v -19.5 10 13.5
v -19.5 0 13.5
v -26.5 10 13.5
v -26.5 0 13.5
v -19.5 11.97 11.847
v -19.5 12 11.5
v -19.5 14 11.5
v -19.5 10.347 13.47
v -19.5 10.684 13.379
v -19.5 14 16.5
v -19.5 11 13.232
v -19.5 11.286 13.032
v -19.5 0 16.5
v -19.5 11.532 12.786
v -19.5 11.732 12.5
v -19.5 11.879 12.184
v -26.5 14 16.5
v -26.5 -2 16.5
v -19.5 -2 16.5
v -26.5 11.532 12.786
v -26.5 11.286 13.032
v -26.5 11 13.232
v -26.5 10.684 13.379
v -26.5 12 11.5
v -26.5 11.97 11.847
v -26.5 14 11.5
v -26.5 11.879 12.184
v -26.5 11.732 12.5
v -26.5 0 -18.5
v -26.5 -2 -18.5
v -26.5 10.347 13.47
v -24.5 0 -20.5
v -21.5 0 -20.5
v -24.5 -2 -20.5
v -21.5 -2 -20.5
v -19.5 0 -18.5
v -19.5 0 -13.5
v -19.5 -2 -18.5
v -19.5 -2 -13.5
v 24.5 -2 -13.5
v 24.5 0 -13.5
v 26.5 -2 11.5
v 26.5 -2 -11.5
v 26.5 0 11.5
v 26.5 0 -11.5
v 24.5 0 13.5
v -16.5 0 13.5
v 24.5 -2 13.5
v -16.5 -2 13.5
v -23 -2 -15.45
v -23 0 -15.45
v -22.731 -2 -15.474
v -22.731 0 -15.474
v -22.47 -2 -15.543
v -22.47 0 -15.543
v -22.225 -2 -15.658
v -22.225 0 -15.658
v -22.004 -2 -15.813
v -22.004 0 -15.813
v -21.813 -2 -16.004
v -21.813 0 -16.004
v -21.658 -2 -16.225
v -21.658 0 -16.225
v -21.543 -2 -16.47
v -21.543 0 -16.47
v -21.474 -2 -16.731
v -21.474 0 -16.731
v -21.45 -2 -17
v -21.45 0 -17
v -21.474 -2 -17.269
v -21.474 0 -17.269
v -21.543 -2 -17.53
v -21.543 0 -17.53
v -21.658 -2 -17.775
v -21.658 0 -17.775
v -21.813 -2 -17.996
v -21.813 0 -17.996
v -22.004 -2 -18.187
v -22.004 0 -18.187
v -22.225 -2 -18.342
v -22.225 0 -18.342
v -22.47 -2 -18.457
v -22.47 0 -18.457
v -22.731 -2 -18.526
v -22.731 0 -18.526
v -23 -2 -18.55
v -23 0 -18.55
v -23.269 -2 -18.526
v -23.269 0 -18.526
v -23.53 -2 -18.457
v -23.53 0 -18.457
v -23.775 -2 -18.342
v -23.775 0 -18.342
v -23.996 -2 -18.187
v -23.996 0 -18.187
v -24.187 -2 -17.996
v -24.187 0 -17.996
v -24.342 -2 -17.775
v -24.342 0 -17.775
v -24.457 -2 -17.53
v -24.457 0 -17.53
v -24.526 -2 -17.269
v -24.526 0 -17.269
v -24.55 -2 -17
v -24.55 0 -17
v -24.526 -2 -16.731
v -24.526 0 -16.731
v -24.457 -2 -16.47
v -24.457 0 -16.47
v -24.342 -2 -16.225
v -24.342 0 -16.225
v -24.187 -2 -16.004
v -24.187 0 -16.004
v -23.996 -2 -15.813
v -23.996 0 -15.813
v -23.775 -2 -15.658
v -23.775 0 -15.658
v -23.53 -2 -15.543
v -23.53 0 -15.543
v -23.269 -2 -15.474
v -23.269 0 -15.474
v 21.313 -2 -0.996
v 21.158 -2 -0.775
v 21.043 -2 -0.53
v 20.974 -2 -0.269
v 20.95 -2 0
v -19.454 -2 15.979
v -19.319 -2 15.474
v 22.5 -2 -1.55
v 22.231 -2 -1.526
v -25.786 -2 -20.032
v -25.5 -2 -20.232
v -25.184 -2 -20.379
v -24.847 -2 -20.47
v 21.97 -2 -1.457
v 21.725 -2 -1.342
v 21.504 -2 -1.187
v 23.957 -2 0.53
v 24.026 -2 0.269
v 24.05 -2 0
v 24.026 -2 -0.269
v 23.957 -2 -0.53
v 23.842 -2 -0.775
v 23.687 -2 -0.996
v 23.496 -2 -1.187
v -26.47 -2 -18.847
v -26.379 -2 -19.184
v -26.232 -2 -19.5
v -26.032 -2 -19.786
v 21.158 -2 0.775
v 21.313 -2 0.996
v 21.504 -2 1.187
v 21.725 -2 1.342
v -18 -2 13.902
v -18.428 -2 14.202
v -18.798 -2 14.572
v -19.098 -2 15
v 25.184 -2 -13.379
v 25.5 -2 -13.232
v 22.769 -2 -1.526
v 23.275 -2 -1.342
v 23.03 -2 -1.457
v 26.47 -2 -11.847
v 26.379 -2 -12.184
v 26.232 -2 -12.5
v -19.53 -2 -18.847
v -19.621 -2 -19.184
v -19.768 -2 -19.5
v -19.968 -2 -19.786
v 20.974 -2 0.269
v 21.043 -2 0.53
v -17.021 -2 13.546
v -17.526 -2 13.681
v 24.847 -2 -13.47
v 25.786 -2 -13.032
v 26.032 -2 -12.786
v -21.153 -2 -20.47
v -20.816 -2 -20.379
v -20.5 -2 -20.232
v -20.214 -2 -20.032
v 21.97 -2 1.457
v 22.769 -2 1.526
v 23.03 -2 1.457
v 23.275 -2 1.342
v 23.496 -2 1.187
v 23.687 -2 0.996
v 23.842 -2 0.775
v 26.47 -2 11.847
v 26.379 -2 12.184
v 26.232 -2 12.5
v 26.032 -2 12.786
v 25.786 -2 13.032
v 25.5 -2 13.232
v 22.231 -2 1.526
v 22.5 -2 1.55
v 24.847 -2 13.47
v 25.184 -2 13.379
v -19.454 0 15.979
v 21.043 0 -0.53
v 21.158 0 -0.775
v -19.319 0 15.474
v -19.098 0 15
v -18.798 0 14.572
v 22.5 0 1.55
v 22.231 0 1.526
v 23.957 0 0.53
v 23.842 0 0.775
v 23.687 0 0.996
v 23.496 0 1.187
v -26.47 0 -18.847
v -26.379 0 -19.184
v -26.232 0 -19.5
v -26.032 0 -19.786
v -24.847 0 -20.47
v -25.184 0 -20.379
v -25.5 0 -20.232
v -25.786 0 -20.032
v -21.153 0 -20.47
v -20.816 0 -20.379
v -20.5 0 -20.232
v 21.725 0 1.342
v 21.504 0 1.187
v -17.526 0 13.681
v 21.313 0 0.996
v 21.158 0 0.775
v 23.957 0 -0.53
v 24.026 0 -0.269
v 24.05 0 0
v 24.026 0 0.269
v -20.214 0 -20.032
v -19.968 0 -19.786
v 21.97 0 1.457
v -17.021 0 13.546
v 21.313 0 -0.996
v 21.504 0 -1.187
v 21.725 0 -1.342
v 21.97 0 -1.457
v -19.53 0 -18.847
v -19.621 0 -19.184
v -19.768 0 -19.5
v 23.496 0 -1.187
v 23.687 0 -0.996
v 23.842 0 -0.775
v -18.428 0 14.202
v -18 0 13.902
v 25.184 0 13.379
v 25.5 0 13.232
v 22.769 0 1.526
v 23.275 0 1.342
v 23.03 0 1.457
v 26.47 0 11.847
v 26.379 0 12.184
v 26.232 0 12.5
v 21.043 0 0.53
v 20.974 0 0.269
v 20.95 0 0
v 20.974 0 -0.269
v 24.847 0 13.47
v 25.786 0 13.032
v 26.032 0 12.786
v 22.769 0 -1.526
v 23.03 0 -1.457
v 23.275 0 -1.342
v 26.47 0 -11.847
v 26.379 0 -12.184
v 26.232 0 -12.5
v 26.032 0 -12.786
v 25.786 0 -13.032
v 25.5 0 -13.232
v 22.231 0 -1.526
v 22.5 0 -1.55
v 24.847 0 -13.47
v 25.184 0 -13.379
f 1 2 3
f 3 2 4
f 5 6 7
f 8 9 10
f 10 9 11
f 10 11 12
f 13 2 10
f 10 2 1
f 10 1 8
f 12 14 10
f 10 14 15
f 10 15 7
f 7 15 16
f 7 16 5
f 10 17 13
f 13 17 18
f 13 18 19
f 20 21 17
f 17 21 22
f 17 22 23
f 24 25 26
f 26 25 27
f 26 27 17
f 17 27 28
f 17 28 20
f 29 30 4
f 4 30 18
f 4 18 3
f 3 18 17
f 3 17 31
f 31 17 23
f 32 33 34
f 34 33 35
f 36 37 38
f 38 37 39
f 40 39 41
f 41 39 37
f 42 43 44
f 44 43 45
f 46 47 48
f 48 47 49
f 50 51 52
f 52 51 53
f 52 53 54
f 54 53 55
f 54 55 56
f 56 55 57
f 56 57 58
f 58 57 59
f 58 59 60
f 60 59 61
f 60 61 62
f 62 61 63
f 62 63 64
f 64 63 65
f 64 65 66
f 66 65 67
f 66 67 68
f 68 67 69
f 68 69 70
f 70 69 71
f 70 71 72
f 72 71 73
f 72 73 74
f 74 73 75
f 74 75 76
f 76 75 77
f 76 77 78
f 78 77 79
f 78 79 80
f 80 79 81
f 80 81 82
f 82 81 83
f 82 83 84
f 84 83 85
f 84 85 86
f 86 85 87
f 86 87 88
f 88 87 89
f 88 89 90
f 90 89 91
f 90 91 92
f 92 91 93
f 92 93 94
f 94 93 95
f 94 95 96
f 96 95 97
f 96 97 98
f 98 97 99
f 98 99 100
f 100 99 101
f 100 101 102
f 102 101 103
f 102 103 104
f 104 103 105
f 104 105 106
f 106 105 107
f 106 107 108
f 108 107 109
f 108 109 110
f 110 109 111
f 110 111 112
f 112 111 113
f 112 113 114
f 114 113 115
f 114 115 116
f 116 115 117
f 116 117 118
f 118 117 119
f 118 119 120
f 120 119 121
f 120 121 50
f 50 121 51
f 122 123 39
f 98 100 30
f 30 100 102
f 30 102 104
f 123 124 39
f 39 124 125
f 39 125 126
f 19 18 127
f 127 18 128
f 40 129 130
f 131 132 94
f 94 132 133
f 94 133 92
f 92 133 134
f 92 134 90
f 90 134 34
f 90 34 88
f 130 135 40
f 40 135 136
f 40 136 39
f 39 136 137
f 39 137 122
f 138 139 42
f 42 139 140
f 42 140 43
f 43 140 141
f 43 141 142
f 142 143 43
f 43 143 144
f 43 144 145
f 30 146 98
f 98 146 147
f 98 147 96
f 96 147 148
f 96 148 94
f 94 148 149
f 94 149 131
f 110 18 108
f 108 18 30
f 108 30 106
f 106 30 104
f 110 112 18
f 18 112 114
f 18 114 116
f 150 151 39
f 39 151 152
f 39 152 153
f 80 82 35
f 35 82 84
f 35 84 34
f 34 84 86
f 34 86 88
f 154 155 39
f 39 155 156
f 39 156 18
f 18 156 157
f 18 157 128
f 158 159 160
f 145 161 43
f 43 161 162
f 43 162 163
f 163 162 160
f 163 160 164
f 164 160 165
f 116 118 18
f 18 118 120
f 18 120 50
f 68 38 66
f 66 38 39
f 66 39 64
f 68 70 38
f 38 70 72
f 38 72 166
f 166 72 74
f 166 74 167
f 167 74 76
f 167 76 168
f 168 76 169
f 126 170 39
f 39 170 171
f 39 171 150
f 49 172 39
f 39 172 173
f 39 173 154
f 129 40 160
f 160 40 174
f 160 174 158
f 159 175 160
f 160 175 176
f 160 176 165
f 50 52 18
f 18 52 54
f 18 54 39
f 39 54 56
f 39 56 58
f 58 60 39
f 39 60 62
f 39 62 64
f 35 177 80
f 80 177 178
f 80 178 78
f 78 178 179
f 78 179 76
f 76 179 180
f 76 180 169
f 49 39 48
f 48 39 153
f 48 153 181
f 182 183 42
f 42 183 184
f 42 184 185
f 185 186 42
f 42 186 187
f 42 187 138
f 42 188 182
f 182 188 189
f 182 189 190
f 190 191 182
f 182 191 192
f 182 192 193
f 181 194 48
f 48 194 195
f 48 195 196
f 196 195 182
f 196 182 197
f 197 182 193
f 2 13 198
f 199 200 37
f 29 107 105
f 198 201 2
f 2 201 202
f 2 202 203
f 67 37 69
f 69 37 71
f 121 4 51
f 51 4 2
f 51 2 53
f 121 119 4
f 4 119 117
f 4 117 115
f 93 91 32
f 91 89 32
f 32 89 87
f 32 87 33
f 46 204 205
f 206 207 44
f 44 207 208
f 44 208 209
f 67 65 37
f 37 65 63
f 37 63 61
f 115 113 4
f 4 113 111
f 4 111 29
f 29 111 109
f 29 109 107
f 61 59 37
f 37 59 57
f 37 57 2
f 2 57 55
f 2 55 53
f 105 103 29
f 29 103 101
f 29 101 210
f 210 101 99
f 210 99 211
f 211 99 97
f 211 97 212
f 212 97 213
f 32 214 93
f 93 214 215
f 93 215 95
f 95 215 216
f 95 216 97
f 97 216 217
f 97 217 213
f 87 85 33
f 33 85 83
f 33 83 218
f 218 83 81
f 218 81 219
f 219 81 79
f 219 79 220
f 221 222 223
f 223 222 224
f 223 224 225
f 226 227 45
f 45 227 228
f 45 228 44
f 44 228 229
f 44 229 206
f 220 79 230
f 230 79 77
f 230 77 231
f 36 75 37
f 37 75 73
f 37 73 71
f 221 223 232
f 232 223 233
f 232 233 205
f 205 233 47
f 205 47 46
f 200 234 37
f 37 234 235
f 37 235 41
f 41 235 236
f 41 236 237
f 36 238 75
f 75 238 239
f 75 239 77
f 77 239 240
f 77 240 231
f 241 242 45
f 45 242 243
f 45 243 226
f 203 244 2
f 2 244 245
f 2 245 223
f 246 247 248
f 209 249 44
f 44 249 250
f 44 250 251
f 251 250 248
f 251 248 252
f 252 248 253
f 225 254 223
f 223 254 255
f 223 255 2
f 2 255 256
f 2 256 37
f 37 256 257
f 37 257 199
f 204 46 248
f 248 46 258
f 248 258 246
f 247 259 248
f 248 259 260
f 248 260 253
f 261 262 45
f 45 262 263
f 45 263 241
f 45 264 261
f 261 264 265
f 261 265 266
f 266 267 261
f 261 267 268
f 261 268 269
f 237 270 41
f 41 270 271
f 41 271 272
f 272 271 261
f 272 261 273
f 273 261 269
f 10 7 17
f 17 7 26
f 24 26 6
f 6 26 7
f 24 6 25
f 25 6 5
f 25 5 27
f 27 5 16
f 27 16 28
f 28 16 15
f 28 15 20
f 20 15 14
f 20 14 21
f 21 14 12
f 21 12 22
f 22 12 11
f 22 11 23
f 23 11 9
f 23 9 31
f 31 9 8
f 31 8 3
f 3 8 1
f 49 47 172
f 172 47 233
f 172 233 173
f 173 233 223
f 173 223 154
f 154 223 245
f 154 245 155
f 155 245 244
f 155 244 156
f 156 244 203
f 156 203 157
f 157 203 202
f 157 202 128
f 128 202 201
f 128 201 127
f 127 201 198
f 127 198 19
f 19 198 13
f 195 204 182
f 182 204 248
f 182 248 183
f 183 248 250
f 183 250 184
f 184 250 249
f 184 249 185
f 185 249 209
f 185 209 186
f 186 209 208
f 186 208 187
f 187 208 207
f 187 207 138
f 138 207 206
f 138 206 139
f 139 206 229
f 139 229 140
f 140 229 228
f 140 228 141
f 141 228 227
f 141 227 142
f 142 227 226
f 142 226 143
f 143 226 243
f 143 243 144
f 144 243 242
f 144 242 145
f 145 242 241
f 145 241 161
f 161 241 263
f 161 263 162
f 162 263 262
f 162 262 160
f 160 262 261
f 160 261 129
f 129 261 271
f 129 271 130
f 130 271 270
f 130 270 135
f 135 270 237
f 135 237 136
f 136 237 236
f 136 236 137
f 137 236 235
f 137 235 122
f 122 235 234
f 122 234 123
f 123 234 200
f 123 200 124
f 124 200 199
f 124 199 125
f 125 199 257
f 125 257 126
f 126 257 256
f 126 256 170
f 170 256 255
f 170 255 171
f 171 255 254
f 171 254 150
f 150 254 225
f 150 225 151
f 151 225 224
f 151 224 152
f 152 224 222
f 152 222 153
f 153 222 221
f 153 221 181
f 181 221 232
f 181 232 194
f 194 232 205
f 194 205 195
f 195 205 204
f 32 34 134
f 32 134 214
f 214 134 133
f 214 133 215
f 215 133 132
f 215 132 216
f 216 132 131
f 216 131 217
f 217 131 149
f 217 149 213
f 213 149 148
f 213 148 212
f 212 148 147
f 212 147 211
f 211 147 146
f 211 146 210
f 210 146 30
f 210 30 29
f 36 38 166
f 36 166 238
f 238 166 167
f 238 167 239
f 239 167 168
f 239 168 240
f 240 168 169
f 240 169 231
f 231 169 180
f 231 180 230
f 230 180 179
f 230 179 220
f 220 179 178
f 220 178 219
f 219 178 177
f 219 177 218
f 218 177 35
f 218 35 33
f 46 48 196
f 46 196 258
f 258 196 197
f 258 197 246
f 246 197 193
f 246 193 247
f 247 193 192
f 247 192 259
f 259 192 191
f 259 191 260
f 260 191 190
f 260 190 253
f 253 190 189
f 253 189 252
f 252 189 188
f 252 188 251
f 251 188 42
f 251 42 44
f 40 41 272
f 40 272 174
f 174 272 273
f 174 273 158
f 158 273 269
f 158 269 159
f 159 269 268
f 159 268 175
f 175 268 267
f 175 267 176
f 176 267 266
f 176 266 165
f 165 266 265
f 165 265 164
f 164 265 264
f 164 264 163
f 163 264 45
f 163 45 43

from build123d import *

# Parameters (mm, degrees)
ESBO_O1_W                = 7
ESBO_O1_H                = 3
ESBO_O1_W_2              = 53
ESBO_O1_H_2              = 27
ESBO_O1_H_3              = 7
ESBO_O1_R                = 1.55
RESSALTO_EXTRUS_O1_DEPTH = 2
ESBO_O2_W                = 7
ESBO_O2_H                = 3
RESSALTO_EXTRUS_O2_DEPTH = 14
ESBO_O3_W                = 7
ESBO_O3_H                = 2
RESSALTO_EXTRUS_O3_DEPTH = 2
FILETE1_R                = 2
FILETE2_R                = 3
ESBO_O4_R                = 1.55
CORTE_EXTRUS_O1_DEPTH    = 2
FILETE3_R                = 2


with BuildPart() as part:
    # Esboço1 → Ressalto-extrusão1 (new body)
    # profile 1 of 3: a face of its own
    with BuildSketch(Plane(origin=(0, 0, 0), x_dir=(1, 0, 0), z_dir=(0, 1, 0))):
        with Locations((-23, -15)):
            Rectangle(ESBO_O1_W, ESBO_O1_H)
    # profile 2 of 3: a face of its own
    with BuildSketch(Plane(origin=(0, 0, 0), x_dir=(1, 0, 0), z_dir=(0, 1, 0))):
        Rectangle(ESBO_O1_W_2, ESBO_O1_H_2)
    # profile 3 of 3: a face of its own
    with BuildSketch(Plane(origin=(0, 0, 0), x_dir=(1, 0, 0), z_dir=(0, 1, 0))):
        with Locations((-23, 17)):
            Rectangle(ESBO_O1_W, ESBO_O1_H_3)
        with Locations(Location((-23, 17, 0), (0, 0, 270))):
            Circle(ESBO_O1_R, mode=Mode.SUBTRACT)
    extrude(amount=-RESSALTO_EXTRUS_O1_DEPTH)

    # Esboço2 → Ressalto-extrusão2 (add)
    with BuildSketch(Plane(origin=(0, 0, 0), x_dir=(1, 0, 0), z_dir=(0, 1, 0))):
        with Locations((-23, -15)):
            Rectangle(ESBO_O2_W, ESBO_O2_H)
    extrude(amount=RESSALTO_EXTRUS_O2_DEPTH)

    # Esboço3 → Ressalto-extrusão3 (add)
    with BuildSketch(Plane(origin=(0, 0, 13.5), x_dir=(-1, 0, 0), z_dir=(0, 0, -1))):
        with Locations((23, 13)):
            Rectangle(ESBO_O3_W, ESBO_O3_H)
    extrude(amount=RESSALTO_EXTRUS_O3_DEPTH)

    # Filete1
    filete1_edges = [part.edges().sort_by_distance(p)[0] for p in [
        (-23, 12, 13.5),
    ]]
    fillet(filete1_edges, radius=FILETE1_R - 0.0001)  # a hair under: the kernel refuses the full size

    # Filete2
    filete2_edges = [part.edges().sort_by_distance(p)[0] for p in [
        (-19.5, -1, 13.5),
    ]]
    fillet(filete2_edges, radius=FILETE2_R - 0.0001)  # a hair under: the kernel refuses the full size

    # Esboço4 → Corte-extrusão1 (cut)
    with BuildSketch(Plane(origin=(0, 0, 0), x_dir=(1, 0, 0), z_dir=(0, 1, 0))):
        with Locations(Location((22.5, 0, 0), (0, 0, 270))):
            Circle(ESBO_O4_R)
    extrude(amount=-CORTE_EXTRUS_O1_DEPTH, mode=Mode.SUBTRACT)

    # Filete3
    filete3_edges = [part.edges().sort_by_distance(p)[0] for p in [
        (-26.5, -1, -20.5),
        (-19.5, -1, -20.5),
        (26.5, -1, -13.5),
        (26.5, -1, 13.5),
    ]]
    fillet(filete3_edges, radius=FILETE3_R)


solid = part.part
